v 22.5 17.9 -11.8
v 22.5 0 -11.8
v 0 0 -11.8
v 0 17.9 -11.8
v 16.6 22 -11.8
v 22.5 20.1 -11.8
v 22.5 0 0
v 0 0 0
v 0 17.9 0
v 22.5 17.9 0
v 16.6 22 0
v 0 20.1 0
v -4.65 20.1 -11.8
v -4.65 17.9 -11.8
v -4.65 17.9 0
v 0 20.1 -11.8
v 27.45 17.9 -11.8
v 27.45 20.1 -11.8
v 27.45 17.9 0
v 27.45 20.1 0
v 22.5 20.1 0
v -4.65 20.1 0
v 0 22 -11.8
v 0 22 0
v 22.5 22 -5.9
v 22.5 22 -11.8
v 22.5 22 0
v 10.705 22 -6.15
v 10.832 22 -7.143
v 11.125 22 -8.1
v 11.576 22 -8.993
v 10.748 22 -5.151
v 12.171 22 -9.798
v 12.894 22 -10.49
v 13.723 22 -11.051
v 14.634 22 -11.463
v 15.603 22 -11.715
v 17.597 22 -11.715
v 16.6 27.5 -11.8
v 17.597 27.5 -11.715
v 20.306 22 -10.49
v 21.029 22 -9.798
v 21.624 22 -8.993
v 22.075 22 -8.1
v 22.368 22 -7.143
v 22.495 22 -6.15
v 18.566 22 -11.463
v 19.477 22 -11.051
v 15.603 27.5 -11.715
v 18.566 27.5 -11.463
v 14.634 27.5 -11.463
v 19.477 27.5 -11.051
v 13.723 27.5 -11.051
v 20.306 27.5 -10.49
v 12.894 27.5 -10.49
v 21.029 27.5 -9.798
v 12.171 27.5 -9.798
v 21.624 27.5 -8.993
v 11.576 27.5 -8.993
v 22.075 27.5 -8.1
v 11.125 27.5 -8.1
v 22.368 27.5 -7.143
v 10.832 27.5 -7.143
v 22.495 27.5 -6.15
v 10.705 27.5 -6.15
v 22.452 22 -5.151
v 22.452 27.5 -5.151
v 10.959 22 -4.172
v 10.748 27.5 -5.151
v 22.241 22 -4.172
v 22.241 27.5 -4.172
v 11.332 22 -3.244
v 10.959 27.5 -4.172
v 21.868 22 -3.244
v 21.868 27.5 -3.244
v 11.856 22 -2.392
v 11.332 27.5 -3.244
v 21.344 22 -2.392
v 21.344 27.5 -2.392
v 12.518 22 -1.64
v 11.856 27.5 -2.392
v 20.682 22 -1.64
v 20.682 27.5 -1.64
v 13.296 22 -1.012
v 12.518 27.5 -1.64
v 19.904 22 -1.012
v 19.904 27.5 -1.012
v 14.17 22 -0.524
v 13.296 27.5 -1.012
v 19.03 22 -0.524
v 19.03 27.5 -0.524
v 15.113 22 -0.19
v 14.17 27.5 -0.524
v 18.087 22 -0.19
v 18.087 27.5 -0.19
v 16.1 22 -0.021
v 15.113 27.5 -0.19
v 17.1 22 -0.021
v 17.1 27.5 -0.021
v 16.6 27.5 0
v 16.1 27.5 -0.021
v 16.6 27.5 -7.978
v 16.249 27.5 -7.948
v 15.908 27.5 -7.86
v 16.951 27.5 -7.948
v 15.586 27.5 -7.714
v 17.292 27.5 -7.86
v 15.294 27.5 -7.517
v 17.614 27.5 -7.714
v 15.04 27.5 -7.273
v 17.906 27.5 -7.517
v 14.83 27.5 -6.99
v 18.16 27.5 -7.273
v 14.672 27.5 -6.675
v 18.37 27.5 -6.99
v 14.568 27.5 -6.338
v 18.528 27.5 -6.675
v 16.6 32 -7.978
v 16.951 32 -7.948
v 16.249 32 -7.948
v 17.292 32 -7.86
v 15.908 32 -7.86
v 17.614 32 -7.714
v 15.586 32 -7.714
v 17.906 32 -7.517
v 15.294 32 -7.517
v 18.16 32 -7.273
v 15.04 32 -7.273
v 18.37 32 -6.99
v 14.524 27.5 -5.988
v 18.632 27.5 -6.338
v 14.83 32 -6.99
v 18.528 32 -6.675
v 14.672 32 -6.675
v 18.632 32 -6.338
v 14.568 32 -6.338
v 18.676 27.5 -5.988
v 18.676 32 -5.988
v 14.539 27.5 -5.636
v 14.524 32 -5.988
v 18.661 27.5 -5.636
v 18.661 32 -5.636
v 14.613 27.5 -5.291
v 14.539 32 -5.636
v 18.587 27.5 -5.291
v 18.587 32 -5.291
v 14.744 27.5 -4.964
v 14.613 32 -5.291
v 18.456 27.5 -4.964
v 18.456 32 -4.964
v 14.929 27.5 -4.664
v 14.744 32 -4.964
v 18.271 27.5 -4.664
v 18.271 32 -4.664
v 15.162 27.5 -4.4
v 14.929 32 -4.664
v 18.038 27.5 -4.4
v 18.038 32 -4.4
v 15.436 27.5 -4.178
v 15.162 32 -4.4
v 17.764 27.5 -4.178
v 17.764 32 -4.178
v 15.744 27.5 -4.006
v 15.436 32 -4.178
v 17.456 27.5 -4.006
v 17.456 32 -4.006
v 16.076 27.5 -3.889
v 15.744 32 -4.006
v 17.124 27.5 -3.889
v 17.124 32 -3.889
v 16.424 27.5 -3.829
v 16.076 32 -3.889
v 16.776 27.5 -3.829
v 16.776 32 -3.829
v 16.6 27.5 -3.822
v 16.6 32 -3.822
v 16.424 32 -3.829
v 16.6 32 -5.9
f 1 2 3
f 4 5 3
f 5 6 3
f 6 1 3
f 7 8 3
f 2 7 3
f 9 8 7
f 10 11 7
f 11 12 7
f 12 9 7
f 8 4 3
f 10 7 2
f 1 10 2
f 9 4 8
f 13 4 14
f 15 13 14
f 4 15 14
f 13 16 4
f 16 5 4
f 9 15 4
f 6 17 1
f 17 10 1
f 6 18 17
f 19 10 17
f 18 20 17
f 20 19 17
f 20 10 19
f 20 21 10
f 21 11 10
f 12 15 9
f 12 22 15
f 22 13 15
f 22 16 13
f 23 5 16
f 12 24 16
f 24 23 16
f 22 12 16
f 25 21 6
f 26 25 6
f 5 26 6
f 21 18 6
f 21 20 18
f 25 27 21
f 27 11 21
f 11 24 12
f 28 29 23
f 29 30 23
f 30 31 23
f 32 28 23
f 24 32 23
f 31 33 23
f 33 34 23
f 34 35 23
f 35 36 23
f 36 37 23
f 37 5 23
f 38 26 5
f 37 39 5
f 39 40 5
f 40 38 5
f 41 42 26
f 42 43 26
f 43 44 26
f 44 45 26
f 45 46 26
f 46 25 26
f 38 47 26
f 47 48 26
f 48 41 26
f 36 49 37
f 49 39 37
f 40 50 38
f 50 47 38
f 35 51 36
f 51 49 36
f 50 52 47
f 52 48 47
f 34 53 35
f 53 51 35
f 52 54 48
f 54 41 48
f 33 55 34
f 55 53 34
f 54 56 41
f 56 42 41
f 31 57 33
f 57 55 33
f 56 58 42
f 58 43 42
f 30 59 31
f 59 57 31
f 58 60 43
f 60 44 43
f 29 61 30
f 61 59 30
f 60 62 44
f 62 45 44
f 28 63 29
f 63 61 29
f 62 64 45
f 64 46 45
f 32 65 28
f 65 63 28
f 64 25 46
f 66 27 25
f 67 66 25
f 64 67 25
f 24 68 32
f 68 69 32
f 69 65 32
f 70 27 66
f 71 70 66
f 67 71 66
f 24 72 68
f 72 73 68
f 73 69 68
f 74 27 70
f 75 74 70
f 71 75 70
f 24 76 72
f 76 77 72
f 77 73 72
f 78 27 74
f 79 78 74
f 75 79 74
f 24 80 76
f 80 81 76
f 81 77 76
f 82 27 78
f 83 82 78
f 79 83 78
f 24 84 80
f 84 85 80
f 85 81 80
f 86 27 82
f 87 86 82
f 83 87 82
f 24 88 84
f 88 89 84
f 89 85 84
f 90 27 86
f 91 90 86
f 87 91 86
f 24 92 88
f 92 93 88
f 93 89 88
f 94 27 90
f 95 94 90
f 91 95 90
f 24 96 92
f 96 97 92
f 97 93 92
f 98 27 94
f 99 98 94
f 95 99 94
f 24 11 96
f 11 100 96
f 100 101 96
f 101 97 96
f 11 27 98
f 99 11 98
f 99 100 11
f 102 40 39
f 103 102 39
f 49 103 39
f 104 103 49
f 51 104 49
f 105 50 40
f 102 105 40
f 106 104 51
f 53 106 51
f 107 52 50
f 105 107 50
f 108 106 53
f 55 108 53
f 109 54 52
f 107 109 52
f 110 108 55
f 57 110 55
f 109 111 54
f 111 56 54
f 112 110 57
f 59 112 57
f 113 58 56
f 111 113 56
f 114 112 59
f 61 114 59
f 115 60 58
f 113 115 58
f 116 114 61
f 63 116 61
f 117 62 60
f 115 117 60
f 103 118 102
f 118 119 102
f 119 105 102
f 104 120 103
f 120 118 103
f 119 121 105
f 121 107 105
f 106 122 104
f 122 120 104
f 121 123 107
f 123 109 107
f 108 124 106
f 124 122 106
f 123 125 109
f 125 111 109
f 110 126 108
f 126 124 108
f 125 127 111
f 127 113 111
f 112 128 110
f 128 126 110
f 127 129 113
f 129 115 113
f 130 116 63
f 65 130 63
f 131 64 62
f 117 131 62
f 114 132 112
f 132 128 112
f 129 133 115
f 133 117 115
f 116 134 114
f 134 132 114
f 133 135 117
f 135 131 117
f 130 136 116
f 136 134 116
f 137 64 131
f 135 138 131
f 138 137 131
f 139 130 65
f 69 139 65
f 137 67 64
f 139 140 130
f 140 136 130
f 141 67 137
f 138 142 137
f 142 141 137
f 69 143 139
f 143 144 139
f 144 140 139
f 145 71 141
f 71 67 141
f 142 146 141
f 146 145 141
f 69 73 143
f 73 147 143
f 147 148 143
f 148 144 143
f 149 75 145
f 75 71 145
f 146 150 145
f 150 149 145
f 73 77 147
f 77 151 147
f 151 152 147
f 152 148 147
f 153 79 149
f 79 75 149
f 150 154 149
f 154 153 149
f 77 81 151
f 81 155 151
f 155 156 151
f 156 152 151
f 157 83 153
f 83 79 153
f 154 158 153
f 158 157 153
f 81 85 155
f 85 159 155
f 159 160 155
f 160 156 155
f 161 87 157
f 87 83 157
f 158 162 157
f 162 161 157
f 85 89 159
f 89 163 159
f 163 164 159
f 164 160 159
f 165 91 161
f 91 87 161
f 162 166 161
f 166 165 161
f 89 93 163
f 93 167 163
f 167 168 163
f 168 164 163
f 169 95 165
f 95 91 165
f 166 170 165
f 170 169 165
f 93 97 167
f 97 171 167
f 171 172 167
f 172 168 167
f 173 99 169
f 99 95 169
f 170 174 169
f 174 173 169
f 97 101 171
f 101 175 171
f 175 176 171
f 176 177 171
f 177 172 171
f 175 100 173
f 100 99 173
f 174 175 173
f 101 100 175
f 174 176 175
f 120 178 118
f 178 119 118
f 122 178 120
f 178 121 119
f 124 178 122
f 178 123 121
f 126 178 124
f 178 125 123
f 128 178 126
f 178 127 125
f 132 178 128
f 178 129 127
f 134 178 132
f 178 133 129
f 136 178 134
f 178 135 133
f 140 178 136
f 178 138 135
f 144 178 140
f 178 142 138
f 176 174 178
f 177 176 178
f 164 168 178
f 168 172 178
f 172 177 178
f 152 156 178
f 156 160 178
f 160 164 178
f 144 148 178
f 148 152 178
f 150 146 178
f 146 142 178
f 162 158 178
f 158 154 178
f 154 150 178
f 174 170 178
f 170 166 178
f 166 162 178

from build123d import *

# Parameters (mm, degrees)
SKETCH1_W           = 22.5
SKETCH1_H           = 11.8
BOSS_EXTRUDE1_DEPTH = 17.9
SKETCH2_W           = 22.5
SKETCH2_H           = 11.8
BOSS_EXTRUDE2_DEPTH = 4.1
SKETCH3_R           = 5.9
BOSS_EXTRUDE3_DEPTH = 5.5
SKETCH4_R           = 2.078257601
BOSS_EXTRUDE4_DEPTH = 4.5
SKETCH5_W           = 32.1
SKETCH5_H           = 11.8
BOSS_EXTRUDE5_DEPTH = 2.2


with BuildPart() as part:
    # Sketch1 → Boss-Extrude1 (new body)
    with BuildSketch(Plane(origin=(0, 0, 0), x_dir=(1, 0, 0), z_dir=(0, 1, 0))):
        with Locations((11.25, 5.9)):
            Rectangle(SKETCH1_W, SKETCH1_H)
    extrude(amount=BOSS_EXTRUDE1_DEPTH)

    # Sketch2 → Boss-Extrude2 (add)
    with BuildSketch(Plane(origin=(0, 17.9, 0), x_dir=(1, 0, 0), z_dir=(0, 1, 0))):
        with Locations((11.25, 5.9)):
            Rectangle(SKETCH2_W, SKETCH2_H)
    extrude(amount=BOSS_EXTRUDE2_DEPTH)

    # Sketch3 → Boss-Extrude3 (add)
    with BuildSketch(Plane(origin=(0, 22, 0), x_dir=(1, 0, 0), z_dir=(0, 1, 0))):
        with Locations((16.6, 5.9)):
            Circle(SKETCH3_R)
    extrude(amount=BOSS_EXTRUDE3_DEPTH)

    # Sketch4 → Boss-Extrude4 (add)
    with BuildSketch(Plane(origin=(0, 27.5, 0), x_dir=(1, 0, 0), z_dir=(0, 1, 0))):
        with Locations((16.6, 5.9)):
            Circle(SKETCH4_R)
    extrude(amount=BOSS_EXTRUDE4_DEPTH)

    # Sketch5 → Boss-Extrude5 (add)
    with BuildSketch(Plane(origin=(0, 17.9, 0), x_dir=(1, 0, 0), z_dir=(0, 1, 0))):
        with Locations((11.4, 5.9)):
            Rectangle(SKETCH5_W, SKETCH5_H)
    extrude(amount=BOSS_EXTRUDE5_DEPTH)


solid = part.part
